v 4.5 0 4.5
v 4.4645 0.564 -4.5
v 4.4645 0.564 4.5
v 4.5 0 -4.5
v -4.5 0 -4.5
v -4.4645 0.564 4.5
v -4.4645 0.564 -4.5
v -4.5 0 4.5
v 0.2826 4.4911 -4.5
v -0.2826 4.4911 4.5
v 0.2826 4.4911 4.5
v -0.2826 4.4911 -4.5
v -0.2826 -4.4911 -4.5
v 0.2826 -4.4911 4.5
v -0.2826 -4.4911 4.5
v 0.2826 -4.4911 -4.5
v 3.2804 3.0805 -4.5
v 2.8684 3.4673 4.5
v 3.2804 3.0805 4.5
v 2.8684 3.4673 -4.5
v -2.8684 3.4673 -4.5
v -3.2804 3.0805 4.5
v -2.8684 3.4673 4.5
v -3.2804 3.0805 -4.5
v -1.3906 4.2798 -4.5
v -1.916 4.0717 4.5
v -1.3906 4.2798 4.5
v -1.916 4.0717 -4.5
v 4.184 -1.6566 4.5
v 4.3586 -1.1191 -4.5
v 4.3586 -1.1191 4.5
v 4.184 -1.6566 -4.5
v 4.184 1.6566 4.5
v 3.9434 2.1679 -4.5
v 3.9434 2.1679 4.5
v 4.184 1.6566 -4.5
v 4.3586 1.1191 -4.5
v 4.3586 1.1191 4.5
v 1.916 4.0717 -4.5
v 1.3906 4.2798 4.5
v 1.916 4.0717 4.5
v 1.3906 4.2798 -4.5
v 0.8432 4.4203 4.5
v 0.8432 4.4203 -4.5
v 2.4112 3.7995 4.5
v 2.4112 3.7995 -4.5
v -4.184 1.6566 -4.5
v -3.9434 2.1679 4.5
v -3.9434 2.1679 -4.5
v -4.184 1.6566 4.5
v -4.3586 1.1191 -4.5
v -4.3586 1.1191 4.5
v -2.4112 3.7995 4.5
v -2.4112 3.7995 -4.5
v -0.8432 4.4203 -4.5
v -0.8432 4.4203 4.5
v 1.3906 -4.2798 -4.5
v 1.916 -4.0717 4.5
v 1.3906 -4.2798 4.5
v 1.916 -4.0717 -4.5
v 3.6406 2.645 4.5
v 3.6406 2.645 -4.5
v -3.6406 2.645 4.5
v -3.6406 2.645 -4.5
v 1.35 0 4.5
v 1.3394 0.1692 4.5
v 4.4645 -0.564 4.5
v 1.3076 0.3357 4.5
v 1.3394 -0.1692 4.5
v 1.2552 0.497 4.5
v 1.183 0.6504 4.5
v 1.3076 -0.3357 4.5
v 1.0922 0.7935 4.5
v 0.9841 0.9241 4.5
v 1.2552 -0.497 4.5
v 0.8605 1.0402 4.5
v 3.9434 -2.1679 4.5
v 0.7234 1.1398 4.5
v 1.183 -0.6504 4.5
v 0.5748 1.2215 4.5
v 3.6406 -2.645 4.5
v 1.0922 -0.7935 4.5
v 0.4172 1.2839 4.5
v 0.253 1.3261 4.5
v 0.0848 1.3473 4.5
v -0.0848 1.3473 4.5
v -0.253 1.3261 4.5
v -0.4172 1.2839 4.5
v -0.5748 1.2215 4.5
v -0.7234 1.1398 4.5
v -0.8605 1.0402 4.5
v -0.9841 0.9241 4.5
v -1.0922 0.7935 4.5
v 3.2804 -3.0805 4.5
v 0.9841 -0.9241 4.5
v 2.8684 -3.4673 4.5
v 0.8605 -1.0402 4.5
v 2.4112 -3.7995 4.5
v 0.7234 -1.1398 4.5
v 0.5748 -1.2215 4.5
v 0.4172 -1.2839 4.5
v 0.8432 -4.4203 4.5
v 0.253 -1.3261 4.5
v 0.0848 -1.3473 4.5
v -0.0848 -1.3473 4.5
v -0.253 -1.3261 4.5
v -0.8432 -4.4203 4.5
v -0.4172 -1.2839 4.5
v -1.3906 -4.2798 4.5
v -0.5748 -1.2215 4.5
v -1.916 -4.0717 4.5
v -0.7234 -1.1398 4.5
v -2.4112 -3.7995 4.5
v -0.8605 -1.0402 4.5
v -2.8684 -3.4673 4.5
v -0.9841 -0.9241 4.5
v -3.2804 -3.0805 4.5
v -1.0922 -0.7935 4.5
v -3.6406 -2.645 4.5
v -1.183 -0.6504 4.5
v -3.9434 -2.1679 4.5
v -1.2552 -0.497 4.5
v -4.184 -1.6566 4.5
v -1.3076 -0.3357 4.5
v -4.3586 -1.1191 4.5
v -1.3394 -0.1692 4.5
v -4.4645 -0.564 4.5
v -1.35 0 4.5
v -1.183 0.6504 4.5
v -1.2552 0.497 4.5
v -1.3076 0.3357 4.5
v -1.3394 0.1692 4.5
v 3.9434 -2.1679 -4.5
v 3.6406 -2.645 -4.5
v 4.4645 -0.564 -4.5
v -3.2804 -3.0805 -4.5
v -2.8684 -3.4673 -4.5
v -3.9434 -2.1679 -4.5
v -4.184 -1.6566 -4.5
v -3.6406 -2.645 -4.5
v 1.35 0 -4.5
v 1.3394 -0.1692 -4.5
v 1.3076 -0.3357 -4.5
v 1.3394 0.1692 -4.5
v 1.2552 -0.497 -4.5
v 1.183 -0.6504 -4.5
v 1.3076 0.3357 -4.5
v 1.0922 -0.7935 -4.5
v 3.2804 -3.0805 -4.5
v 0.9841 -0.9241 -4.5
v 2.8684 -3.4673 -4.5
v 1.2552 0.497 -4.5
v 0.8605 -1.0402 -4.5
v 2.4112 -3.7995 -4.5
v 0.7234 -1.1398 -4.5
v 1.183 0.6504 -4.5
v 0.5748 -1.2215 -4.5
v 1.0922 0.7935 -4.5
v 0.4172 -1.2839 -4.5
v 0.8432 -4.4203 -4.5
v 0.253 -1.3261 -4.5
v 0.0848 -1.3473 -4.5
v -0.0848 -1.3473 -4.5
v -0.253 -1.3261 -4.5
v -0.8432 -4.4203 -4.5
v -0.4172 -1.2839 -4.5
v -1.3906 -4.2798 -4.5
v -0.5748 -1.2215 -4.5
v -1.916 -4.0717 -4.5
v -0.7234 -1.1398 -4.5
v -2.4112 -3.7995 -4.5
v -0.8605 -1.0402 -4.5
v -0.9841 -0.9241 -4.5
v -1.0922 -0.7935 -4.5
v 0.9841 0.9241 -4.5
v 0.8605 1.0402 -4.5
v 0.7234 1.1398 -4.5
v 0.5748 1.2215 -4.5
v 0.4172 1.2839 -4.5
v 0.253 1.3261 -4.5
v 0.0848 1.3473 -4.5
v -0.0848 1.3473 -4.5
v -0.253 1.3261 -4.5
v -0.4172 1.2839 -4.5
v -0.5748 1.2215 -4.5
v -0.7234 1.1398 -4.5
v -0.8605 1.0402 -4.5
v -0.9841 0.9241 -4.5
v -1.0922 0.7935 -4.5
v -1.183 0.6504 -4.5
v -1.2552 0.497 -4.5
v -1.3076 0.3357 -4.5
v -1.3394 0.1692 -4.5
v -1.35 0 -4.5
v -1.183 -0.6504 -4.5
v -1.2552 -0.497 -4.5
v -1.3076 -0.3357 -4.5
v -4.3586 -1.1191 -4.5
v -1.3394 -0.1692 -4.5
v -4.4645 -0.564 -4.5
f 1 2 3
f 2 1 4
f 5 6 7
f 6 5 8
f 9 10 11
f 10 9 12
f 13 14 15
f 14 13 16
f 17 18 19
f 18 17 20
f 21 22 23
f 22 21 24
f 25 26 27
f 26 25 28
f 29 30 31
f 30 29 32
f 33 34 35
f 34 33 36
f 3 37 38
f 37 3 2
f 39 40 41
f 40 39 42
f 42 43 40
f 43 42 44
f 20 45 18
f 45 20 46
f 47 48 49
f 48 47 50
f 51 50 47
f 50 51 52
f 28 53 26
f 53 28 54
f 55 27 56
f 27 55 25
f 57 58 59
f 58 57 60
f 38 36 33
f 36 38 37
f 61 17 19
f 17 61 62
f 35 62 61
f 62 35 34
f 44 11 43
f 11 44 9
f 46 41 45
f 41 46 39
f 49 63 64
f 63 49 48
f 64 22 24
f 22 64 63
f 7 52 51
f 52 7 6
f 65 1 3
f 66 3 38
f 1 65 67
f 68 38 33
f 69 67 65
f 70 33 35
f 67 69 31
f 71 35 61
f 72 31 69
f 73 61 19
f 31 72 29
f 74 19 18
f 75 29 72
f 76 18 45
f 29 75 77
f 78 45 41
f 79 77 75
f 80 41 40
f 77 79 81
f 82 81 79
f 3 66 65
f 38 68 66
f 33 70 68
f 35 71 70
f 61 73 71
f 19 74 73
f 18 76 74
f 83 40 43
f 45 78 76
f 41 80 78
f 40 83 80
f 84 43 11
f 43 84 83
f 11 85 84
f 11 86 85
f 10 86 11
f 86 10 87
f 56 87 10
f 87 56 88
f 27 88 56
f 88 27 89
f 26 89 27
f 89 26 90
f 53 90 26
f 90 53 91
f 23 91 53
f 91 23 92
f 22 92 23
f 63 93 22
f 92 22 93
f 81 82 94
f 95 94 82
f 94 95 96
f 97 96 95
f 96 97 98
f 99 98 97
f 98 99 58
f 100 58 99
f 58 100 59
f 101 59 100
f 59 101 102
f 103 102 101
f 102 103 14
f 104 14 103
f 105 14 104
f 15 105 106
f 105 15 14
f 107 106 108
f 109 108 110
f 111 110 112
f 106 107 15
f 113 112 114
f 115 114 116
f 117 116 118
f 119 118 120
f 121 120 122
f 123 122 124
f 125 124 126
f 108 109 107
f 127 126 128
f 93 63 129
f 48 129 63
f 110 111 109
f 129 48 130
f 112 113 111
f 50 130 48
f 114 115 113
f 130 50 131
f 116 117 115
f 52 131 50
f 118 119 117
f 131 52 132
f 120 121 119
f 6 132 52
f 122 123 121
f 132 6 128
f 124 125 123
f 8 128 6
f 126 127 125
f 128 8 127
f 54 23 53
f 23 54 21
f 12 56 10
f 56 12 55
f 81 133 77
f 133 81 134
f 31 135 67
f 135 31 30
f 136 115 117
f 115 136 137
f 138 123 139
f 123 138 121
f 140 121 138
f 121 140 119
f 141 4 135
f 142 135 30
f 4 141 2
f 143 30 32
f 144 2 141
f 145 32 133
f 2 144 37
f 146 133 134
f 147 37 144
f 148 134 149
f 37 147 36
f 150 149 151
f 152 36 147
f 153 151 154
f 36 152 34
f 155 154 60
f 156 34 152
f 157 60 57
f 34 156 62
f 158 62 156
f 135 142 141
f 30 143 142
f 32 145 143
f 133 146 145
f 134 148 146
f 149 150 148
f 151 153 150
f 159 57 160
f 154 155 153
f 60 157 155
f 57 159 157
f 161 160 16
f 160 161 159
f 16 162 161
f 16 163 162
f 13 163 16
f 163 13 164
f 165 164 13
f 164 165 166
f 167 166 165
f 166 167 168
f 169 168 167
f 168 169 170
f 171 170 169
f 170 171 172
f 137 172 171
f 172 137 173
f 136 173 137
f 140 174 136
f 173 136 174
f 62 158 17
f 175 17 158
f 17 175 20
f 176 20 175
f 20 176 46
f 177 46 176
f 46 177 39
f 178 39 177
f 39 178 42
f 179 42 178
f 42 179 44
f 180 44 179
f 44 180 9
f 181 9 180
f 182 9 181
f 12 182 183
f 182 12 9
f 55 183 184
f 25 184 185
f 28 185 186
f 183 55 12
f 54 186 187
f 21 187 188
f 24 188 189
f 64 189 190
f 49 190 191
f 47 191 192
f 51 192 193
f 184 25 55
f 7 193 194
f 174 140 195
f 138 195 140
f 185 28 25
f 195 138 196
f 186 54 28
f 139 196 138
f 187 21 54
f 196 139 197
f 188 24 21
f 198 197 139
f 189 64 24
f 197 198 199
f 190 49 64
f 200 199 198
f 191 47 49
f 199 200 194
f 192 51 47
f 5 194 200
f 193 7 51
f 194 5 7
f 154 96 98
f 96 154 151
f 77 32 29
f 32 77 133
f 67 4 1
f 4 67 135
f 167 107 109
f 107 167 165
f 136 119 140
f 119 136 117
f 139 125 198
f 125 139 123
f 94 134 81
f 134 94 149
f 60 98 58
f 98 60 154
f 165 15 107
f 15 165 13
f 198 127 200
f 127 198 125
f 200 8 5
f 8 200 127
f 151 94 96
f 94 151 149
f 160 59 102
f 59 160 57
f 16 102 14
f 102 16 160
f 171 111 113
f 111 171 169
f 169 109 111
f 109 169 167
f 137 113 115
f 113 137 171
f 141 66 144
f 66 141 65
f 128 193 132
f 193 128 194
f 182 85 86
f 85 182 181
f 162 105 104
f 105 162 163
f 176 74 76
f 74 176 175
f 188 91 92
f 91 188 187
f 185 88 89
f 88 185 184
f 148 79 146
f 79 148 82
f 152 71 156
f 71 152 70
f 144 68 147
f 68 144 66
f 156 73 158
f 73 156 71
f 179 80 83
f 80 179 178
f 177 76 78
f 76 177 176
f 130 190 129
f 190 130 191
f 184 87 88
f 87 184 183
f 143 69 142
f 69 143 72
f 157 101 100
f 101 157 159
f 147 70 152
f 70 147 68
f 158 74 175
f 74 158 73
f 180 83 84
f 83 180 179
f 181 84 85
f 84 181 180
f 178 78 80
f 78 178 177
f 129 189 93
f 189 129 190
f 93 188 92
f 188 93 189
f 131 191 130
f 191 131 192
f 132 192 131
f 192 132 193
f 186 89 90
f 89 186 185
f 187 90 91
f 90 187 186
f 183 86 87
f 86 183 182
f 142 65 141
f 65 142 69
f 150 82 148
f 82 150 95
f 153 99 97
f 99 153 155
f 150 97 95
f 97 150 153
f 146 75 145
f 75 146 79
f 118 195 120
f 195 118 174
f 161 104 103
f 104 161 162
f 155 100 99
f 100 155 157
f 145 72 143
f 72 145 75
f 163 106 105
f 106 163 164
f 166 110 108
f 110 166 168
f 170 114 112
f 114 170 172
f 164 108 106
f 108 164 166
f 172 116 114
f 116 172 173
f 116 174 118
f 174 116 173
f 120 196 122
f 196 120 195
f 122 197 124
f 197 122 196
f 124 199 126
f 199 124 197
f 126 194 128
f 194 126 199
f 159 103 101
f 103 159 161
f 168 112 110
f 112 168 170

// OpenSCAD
$fn = 50;


difference() {
	union() {
		translate(v = [0, 0, -4.5000000000]) {
			cylinder(h = 9, r = 4.5000000000);
		}
	}
	union() {
		translate(v = [0, 0, -100.0000000000]) {
			cylinder(h = 200, r = 1.3500000000);
		}
	}
}
